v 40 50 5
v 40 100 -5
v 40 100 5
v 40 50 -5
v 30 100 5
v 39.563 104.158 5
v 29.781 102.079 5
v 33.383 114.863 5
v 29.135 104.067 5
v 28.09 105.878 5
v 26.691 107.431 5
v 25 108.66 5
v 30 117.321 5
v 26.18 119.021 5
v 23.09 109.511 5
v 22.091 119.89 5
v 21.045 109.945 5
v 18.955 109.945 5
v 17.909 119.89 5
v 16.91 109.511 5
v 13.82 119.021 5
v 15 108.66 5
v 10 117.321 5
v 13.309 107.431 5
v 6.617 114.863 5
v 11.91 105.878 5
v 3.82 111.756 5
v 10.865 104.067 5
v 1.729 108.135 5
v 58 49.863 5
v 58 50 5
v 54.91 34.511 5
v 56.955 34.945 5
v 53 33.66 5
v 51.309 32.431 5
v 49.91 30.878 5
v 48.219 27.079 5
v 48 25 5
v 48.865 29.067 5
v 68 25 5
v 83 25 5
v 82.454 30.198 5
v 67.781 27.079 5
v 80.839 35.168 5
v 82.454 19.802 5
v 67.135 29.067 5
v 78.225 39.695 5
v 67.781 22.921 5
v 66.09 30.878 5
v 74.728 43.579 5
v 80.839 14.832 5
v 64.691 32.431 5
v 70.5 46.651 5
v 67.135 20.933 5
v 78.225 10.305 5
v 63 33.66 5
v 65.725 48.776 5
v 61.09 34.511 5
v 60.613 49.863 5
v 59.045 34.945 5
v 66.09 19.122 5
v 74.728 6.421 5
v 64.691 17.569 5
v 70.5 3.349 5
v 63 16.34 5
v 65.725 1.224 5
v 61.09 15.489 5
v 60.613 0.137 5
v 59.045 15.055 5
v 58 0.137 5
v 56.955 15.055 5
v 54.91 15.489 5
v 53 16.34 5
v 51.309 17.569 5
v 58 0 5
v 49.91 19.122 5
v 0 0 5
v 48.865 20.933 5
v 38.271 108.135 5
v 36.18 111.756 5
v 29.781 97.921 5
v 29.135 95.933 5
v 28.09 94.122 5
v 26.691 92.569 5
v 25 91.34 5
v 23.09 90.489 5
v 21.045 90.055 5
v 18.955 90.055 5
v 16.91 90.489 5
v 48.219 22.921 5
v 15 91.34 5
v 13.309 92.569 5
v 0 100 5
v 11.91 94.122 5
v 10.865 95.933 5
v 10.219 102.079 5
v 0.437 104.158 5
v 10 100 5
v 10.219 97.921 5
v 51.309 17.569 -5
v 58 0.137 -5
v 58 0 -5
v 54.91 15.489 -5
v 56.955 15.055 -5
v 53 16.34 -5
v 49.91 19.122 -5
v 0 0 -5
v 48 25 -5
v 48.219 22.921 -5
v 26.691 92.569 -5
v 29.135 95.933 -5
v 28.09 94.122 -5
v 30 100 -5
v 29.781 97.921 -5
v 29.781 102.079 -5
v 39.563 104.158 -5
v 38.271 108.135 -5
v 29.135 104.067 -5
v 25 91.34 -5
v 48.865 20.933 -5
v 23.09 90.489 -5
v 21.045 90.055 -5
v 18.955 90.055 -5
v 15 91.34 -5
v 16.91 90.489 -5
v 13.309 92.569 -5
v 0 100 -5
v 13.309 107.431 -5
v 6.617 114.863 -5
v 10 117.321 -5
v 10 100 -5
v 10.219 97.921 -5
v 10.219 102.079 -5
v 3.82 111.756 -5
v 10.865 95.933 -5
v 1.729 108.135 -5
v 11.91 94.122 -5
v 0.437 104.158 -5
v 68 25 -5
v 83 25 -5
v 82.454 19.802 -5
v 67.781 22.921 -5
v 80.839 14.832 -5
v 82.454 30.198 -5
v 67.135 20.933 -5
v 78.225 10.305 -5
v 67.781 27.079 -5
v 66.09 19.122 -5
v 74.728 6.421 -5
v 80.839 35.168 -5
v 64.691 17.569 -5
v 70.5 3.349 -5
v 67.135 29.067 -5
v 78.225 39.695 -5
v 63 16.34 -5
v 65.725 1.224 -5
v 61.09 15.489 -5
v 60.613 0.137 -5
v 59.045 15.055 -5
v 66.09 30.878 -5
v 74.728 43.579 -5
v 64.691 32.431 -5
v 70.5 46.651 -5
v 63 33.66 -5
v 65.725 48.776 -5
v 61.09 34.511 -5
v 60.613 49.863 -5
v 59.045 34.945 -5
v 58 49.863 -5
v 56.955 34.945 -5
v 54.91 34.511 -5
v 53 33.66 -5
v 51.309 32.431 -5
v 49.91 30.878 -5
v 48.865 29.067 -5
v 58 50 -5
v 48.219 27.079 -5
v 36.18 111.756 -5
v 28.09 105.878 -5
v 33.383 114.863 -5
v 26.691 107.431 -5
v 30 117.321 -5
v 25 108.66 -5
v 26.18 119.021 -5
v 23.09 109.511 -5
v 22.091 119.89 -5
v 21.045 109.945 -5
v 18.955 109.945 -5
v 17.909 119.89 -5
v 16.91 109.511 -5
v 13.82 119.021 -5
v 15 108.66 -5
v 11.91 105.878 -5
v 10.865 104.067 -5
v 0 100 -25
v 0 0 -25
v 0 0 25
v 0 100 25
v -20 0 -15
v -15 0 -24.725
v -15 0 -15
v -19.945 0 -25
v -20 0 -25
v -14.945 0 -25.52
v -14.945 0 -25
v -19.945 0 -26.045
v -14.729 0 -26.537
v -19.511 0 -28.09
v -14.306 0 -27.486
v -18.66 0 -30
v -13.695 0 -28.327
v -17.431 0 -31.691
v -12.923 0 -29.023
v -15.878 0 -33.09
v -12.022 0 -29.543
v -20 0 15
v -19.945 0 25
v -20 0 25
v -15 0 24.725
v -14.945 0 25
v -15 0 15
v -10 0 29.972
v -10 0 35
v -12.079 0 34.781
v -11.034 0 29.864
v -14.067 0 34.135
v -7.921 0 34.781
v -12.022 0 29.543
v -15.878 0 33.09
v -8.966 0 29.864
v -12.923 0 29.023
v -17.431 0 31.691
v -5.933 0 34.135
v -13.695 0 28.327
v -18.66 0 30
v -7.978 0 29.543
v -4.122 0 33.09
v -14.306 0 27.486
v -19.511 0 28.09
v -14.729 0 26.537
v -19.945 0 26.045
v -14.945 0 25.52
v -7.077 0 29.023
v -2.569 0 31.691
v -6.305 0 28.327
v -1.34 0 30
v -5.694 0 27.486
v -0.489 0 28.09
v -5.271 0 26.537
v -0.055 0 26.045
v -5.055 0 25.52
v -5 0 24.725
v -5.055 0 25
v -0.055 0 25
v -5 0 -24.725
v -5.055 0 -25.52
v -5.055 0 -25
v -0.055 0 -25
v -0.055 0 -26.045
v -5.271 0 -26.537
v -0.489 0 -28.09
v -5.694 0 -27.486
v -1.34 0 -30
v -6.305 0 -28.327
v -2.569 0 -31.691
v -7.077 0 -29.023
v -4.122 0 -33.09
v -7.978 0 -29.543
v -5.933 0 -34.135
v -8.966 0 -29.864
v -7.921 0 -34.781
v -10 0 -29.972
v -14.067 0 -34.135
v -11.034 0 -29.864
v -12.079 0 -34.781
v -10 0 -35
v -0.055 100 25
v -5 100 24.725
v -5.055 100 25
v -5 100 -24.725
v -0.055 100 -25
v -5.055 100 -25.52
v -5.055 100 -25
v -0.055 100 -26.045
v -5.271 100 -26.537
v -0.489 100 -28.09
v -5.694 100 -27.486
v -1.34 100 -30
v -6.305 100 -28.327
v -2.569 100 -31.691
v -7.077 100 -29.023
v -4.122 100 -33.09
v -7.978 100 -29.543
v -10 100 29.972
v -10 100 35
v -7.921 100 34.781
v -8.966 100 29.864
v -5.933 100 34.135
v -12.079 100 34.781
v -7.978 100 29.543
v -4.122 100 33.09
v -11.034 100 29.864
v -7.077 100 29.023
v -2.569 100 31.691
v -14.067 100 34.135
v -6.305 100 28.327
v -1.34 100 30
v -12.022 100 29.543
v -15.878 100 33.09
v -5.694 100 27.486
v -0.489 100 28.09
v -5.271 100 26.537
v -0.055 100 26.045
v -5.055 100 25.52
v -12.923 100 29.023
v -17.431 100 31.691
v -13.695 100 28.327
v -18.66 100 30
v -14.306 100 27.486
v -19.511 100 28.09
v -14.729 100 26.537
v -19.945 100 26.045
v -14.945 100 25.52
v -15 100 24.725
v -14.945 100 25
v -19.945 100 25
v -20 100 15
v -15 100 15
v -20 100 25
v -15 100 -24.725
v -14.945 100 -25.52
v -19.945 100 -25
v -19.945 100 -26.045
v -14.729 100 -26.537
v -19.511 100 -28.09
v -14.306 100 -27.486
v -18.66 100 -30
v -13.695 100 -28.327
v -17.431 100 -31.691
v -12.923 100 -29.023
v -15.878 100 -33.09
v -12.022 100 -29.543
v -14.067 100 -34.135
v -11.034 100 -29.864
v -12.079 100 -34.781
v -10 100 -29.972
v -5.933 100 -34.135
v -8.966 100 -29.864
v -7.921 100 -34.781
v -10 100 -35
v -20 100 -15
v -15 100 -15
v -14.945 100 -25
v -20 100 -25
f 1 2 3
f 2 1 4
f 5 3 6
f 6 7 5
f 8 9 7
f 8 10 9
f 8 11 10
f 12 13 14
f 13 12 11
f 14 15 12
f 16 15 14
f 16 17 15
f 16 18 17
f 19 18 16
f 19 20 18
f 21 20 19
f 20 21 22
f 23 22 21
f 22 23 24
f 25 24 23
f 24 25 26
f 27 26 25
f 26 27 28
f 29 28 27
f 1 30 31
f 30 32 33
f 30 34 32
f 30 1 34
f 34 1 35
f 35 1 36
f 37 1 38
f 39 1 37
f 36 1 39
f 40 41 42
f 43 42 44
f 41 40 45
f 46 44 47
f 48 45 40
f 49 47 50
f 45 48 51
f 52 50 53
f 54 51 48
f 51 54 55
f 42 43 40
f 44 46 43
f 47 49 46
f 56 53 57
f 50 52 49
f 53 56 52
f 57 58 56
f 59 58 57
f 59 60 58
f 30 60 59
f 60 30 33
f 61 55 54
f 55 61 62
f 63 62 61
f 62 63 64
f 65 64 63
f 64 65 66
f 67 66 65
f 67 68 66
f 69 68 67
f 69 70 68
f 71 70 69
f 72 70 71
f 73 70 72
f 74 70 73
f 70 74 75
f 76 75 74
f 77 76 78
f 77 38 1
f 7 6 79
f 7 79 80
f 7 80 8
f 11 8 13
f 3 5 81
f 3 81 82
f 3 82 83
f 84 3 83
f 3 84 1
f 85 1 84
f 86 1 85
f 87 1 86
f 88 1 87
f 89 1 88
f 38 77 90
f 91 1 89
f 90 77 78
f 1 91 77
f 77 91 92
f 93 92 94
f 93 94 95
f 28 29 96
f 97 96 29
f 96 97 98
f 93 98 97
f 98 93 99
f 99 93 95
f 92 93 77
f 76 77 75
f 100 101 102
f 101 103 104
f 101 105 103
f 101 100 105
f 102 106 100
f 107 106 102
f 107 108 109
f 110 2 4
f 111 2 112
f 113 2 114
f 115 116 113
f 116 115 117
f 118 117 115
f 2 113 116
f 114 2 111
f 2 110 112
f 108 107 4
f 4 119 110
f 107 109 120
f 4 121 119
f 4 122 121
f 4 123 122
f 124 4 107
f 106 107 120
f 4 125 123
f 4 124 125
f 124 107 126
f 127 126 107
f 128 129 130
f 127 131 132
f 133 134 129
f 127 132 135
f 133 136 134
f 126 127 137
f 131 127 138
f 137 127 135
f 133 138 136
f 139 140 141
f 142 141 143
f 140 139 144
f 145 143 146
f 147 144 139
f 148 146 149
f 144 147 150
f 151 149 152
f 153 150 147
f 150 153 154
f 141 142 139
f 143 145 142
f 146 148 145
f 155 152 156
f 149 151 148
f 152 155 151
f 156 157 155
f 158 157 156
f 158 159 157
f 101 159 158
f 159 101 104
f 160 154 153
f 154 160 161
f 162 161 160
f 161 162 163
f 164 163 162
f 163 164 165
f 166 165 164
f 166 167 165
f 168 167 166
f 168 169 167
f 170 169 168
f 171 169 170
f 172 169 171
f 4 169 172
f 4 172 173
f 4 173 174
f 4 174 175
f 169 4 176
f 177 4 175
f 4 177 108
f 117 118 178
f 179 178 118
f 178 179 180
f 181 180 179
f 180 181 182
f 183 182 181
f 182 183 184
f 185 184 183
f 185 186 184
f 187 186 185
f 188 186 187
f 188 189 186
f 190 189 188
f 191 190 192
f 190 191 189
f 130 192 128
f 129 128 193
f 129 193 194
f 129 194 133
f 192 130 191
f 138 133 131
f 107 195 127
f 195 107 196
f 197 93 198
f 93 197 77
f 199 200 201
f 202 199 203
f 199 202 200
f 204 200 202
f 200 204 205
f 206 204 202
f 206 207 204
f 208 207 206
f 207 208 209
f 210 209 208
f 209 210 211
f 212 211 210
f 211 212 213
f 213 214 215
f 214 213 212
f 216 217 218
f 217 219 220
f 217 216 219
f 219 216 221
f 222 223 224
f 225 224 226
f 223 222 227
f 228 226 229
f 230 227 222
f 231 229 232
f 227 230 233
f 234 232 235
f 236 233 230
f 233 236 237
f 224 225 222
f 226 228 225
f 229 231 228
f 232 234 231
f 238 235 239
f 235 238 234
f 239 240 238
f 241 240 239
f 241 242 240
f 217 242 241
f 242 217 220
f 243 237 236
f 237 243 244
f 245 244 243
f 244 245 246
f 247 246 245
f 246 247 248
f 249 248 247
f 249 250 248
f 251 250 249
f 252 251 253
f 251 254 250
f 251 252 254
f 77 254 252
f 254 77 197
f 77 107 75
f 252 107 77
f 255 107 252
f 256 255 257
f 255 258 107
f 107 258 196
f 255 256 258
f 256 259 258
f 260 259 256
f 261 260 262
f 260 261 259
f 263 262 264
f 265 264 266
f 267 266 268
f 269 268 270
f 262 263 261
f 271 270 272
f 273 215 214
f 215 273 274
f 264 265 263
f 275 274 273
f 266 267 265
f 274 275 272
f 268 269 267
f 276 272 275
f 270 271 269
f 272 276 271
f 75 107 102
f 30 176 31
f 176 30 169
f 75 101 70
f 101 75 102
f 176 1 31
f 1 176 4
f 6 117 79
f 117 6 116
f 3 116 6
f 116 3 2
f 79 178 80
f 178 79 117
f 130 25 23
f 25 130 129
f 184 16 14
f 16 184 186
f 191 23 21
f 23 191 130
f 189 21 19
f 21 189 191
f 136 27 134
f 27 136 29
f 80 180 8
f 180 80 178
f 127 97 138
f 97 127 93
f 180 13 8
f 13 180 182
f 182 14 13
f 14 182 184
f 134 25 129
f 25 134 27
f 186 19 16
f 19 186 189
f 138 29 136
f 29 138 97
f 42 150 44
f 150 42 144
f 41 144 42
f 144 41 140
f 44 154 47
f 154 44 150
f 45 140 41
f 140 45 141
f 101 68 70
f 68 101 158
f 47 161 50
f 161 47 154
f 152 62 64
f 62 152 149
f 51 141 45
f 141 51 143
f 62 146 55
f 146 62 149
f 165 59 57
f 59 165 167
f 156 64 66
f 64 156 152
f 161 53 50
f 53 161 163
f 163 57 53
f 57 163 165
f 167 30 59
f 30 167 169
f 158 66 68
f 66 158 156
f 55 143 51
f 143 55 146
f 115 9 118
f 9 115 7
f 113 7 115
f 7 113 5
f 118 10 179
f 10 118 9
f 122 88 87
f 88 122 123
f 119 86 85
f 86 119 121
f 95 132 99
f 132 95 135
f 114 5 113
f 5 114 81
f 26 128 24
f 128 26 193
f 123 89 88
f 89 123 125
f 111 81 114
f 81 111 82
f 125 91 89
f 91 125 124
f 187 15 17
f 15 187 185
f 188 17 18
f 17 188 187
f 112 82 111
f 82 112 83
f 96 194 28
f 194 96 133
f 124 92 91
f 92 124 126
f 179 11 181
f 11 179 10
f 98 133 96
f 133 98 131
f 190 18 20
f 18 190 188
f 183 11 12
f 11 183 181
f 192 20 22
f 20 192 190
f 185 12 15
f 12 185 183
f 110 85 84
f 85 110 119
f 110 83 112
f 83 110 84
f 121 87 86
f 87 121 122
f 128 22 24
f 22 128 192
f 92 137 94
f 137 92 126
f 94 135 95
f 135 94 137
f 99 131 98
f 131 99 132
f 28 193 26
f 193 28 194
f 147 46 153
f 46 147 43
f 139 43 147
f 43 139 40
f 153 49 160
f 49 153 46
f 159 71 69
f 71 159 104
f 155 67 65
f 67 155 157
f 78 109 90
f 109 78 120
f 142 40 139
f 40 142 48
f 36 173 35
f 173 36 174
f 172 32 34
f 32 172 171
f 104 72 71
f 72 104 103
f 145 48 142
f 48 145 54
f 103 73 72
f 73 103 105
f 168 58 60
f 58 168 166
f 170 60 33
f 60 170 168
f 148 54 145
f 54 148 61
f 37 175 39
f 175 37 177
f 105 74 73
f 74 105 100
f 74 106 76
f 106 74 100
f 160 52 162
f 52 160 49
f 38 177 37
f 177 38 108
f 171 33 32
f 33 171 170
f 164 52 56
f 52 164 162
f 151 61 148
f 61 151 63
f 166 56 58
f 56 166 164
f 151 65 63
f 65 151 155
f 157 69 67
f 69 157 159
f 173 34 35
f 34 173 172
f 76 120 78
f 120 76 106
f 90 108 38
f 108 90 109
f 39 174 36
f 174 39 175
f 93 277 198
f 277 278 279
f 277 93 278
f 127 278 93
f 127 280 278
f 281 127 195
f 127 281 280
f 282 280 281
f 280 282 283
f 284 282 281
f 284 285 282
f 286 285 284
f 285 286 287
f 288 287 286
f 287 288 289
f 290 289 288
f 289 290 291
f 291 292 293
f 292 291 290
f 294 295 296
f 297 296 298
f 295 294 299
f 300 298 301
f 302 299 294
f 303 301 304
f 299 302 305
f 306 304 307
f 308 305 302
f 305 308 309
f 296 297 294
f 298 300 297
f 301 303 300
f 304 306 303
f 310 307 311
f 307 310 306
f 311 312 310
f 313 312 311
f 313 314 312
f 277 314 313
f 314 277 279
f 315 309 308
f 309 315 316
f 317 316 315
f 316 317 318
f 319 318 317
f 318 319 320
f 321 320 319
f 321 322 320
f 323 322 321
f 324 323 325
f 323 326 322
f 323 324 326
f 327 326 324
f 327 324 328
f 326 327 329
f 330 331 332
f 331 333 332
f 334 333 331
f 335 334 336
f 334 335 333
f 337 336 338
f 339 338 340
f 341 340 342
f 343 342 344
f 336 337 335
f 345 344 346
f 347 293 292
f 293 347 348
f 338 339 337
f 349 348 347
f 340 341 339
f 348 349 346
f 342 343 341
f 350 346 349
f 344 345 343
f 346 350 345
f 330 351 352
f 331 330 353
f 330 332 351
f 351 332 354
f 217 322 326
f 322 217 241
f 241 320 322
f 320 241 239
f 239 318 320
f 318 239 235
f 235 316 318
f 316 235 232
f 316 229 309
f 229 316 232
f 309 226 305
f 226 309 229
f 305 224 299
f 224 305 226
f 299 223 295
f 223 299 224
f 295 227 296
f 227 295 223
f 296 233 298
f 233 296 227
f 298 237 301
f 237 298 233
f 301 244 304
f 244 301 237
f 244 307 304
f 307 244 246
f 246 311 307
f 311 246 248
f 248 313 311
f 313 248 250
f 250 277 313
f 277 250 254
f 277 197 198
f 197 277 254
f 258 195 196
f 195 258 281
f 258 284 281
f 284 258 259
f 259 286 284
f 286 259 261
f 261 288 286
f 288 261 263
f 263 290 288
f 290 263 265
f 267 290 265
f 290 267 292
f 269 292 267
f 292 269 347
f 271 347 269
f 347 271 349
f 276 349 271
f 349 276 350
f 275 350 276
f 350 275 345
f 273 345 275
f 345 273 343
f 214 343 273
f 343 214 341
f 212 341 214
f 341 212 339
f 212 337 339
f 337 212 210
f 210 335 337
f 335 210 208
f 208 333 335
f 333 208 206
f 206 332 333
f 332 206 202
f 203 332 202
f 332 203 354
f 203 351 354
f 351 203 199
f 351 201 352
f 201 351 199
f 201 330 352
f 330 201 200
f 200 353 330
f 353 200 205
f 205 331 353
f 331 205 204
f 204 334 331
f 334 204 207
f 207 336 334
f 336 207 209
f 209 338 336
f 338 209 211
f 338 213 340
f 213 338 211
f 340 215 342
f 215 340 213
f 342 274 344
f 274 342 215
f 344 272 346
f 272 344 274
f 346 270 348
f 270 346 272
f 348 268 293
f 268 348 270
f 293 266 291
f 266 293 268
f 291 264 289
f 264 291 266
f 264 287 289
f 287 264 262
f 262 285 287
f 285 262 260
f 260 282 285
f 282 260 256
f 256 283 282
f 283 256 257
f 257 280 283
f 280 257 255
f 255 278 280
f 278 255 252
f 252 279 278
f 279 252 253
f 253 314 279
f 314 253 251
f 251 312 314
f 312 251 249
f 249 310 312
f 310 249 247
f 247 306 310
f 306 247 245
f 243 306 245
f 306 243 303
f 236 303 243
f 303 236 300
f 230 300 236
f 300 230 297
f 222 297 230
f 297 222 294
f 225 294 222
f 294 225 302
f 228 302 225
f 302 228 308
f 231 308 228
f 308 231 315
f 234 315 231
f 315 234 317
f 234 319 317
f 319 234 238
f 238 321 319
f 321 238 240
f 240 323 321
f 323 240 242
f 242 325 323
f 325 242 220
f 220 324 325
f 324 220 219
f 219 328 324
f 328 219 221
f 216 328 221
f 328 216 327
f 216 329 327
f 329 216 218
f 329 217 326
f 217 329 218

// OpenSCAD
translate([-10,0,0])
rotate([-90,-90,0])
linear_extrude(100)
difference() {
    union() {
        translate([-25,-10]) square([50,20]);
        translate([-25,0]) circle(10);
        translate([25,0]) circle(10);
    }
    offset(-5){
        union() {
            translate([-25,-10]) square([50,20]);
            translate([-25,0]) circle(10);
            translate([25,0]) circle(10);
        }
    }
    translate([-15,-10.1]) square([30,10.1]);
}

translate([0,0,-5]) {
    difference() {
        union() {
            cube([40,100,10]);
            cube([58,50,10]);
            translate([20,100,0]) cylinder(10,20,20);
            translate([58,25,0]) cylinder(10,25,25);
        }
        translate([20,100,0]) cylinder(10,10,10);
        translate([58,25,0]) cylinder(10,10,10);
    }
}
